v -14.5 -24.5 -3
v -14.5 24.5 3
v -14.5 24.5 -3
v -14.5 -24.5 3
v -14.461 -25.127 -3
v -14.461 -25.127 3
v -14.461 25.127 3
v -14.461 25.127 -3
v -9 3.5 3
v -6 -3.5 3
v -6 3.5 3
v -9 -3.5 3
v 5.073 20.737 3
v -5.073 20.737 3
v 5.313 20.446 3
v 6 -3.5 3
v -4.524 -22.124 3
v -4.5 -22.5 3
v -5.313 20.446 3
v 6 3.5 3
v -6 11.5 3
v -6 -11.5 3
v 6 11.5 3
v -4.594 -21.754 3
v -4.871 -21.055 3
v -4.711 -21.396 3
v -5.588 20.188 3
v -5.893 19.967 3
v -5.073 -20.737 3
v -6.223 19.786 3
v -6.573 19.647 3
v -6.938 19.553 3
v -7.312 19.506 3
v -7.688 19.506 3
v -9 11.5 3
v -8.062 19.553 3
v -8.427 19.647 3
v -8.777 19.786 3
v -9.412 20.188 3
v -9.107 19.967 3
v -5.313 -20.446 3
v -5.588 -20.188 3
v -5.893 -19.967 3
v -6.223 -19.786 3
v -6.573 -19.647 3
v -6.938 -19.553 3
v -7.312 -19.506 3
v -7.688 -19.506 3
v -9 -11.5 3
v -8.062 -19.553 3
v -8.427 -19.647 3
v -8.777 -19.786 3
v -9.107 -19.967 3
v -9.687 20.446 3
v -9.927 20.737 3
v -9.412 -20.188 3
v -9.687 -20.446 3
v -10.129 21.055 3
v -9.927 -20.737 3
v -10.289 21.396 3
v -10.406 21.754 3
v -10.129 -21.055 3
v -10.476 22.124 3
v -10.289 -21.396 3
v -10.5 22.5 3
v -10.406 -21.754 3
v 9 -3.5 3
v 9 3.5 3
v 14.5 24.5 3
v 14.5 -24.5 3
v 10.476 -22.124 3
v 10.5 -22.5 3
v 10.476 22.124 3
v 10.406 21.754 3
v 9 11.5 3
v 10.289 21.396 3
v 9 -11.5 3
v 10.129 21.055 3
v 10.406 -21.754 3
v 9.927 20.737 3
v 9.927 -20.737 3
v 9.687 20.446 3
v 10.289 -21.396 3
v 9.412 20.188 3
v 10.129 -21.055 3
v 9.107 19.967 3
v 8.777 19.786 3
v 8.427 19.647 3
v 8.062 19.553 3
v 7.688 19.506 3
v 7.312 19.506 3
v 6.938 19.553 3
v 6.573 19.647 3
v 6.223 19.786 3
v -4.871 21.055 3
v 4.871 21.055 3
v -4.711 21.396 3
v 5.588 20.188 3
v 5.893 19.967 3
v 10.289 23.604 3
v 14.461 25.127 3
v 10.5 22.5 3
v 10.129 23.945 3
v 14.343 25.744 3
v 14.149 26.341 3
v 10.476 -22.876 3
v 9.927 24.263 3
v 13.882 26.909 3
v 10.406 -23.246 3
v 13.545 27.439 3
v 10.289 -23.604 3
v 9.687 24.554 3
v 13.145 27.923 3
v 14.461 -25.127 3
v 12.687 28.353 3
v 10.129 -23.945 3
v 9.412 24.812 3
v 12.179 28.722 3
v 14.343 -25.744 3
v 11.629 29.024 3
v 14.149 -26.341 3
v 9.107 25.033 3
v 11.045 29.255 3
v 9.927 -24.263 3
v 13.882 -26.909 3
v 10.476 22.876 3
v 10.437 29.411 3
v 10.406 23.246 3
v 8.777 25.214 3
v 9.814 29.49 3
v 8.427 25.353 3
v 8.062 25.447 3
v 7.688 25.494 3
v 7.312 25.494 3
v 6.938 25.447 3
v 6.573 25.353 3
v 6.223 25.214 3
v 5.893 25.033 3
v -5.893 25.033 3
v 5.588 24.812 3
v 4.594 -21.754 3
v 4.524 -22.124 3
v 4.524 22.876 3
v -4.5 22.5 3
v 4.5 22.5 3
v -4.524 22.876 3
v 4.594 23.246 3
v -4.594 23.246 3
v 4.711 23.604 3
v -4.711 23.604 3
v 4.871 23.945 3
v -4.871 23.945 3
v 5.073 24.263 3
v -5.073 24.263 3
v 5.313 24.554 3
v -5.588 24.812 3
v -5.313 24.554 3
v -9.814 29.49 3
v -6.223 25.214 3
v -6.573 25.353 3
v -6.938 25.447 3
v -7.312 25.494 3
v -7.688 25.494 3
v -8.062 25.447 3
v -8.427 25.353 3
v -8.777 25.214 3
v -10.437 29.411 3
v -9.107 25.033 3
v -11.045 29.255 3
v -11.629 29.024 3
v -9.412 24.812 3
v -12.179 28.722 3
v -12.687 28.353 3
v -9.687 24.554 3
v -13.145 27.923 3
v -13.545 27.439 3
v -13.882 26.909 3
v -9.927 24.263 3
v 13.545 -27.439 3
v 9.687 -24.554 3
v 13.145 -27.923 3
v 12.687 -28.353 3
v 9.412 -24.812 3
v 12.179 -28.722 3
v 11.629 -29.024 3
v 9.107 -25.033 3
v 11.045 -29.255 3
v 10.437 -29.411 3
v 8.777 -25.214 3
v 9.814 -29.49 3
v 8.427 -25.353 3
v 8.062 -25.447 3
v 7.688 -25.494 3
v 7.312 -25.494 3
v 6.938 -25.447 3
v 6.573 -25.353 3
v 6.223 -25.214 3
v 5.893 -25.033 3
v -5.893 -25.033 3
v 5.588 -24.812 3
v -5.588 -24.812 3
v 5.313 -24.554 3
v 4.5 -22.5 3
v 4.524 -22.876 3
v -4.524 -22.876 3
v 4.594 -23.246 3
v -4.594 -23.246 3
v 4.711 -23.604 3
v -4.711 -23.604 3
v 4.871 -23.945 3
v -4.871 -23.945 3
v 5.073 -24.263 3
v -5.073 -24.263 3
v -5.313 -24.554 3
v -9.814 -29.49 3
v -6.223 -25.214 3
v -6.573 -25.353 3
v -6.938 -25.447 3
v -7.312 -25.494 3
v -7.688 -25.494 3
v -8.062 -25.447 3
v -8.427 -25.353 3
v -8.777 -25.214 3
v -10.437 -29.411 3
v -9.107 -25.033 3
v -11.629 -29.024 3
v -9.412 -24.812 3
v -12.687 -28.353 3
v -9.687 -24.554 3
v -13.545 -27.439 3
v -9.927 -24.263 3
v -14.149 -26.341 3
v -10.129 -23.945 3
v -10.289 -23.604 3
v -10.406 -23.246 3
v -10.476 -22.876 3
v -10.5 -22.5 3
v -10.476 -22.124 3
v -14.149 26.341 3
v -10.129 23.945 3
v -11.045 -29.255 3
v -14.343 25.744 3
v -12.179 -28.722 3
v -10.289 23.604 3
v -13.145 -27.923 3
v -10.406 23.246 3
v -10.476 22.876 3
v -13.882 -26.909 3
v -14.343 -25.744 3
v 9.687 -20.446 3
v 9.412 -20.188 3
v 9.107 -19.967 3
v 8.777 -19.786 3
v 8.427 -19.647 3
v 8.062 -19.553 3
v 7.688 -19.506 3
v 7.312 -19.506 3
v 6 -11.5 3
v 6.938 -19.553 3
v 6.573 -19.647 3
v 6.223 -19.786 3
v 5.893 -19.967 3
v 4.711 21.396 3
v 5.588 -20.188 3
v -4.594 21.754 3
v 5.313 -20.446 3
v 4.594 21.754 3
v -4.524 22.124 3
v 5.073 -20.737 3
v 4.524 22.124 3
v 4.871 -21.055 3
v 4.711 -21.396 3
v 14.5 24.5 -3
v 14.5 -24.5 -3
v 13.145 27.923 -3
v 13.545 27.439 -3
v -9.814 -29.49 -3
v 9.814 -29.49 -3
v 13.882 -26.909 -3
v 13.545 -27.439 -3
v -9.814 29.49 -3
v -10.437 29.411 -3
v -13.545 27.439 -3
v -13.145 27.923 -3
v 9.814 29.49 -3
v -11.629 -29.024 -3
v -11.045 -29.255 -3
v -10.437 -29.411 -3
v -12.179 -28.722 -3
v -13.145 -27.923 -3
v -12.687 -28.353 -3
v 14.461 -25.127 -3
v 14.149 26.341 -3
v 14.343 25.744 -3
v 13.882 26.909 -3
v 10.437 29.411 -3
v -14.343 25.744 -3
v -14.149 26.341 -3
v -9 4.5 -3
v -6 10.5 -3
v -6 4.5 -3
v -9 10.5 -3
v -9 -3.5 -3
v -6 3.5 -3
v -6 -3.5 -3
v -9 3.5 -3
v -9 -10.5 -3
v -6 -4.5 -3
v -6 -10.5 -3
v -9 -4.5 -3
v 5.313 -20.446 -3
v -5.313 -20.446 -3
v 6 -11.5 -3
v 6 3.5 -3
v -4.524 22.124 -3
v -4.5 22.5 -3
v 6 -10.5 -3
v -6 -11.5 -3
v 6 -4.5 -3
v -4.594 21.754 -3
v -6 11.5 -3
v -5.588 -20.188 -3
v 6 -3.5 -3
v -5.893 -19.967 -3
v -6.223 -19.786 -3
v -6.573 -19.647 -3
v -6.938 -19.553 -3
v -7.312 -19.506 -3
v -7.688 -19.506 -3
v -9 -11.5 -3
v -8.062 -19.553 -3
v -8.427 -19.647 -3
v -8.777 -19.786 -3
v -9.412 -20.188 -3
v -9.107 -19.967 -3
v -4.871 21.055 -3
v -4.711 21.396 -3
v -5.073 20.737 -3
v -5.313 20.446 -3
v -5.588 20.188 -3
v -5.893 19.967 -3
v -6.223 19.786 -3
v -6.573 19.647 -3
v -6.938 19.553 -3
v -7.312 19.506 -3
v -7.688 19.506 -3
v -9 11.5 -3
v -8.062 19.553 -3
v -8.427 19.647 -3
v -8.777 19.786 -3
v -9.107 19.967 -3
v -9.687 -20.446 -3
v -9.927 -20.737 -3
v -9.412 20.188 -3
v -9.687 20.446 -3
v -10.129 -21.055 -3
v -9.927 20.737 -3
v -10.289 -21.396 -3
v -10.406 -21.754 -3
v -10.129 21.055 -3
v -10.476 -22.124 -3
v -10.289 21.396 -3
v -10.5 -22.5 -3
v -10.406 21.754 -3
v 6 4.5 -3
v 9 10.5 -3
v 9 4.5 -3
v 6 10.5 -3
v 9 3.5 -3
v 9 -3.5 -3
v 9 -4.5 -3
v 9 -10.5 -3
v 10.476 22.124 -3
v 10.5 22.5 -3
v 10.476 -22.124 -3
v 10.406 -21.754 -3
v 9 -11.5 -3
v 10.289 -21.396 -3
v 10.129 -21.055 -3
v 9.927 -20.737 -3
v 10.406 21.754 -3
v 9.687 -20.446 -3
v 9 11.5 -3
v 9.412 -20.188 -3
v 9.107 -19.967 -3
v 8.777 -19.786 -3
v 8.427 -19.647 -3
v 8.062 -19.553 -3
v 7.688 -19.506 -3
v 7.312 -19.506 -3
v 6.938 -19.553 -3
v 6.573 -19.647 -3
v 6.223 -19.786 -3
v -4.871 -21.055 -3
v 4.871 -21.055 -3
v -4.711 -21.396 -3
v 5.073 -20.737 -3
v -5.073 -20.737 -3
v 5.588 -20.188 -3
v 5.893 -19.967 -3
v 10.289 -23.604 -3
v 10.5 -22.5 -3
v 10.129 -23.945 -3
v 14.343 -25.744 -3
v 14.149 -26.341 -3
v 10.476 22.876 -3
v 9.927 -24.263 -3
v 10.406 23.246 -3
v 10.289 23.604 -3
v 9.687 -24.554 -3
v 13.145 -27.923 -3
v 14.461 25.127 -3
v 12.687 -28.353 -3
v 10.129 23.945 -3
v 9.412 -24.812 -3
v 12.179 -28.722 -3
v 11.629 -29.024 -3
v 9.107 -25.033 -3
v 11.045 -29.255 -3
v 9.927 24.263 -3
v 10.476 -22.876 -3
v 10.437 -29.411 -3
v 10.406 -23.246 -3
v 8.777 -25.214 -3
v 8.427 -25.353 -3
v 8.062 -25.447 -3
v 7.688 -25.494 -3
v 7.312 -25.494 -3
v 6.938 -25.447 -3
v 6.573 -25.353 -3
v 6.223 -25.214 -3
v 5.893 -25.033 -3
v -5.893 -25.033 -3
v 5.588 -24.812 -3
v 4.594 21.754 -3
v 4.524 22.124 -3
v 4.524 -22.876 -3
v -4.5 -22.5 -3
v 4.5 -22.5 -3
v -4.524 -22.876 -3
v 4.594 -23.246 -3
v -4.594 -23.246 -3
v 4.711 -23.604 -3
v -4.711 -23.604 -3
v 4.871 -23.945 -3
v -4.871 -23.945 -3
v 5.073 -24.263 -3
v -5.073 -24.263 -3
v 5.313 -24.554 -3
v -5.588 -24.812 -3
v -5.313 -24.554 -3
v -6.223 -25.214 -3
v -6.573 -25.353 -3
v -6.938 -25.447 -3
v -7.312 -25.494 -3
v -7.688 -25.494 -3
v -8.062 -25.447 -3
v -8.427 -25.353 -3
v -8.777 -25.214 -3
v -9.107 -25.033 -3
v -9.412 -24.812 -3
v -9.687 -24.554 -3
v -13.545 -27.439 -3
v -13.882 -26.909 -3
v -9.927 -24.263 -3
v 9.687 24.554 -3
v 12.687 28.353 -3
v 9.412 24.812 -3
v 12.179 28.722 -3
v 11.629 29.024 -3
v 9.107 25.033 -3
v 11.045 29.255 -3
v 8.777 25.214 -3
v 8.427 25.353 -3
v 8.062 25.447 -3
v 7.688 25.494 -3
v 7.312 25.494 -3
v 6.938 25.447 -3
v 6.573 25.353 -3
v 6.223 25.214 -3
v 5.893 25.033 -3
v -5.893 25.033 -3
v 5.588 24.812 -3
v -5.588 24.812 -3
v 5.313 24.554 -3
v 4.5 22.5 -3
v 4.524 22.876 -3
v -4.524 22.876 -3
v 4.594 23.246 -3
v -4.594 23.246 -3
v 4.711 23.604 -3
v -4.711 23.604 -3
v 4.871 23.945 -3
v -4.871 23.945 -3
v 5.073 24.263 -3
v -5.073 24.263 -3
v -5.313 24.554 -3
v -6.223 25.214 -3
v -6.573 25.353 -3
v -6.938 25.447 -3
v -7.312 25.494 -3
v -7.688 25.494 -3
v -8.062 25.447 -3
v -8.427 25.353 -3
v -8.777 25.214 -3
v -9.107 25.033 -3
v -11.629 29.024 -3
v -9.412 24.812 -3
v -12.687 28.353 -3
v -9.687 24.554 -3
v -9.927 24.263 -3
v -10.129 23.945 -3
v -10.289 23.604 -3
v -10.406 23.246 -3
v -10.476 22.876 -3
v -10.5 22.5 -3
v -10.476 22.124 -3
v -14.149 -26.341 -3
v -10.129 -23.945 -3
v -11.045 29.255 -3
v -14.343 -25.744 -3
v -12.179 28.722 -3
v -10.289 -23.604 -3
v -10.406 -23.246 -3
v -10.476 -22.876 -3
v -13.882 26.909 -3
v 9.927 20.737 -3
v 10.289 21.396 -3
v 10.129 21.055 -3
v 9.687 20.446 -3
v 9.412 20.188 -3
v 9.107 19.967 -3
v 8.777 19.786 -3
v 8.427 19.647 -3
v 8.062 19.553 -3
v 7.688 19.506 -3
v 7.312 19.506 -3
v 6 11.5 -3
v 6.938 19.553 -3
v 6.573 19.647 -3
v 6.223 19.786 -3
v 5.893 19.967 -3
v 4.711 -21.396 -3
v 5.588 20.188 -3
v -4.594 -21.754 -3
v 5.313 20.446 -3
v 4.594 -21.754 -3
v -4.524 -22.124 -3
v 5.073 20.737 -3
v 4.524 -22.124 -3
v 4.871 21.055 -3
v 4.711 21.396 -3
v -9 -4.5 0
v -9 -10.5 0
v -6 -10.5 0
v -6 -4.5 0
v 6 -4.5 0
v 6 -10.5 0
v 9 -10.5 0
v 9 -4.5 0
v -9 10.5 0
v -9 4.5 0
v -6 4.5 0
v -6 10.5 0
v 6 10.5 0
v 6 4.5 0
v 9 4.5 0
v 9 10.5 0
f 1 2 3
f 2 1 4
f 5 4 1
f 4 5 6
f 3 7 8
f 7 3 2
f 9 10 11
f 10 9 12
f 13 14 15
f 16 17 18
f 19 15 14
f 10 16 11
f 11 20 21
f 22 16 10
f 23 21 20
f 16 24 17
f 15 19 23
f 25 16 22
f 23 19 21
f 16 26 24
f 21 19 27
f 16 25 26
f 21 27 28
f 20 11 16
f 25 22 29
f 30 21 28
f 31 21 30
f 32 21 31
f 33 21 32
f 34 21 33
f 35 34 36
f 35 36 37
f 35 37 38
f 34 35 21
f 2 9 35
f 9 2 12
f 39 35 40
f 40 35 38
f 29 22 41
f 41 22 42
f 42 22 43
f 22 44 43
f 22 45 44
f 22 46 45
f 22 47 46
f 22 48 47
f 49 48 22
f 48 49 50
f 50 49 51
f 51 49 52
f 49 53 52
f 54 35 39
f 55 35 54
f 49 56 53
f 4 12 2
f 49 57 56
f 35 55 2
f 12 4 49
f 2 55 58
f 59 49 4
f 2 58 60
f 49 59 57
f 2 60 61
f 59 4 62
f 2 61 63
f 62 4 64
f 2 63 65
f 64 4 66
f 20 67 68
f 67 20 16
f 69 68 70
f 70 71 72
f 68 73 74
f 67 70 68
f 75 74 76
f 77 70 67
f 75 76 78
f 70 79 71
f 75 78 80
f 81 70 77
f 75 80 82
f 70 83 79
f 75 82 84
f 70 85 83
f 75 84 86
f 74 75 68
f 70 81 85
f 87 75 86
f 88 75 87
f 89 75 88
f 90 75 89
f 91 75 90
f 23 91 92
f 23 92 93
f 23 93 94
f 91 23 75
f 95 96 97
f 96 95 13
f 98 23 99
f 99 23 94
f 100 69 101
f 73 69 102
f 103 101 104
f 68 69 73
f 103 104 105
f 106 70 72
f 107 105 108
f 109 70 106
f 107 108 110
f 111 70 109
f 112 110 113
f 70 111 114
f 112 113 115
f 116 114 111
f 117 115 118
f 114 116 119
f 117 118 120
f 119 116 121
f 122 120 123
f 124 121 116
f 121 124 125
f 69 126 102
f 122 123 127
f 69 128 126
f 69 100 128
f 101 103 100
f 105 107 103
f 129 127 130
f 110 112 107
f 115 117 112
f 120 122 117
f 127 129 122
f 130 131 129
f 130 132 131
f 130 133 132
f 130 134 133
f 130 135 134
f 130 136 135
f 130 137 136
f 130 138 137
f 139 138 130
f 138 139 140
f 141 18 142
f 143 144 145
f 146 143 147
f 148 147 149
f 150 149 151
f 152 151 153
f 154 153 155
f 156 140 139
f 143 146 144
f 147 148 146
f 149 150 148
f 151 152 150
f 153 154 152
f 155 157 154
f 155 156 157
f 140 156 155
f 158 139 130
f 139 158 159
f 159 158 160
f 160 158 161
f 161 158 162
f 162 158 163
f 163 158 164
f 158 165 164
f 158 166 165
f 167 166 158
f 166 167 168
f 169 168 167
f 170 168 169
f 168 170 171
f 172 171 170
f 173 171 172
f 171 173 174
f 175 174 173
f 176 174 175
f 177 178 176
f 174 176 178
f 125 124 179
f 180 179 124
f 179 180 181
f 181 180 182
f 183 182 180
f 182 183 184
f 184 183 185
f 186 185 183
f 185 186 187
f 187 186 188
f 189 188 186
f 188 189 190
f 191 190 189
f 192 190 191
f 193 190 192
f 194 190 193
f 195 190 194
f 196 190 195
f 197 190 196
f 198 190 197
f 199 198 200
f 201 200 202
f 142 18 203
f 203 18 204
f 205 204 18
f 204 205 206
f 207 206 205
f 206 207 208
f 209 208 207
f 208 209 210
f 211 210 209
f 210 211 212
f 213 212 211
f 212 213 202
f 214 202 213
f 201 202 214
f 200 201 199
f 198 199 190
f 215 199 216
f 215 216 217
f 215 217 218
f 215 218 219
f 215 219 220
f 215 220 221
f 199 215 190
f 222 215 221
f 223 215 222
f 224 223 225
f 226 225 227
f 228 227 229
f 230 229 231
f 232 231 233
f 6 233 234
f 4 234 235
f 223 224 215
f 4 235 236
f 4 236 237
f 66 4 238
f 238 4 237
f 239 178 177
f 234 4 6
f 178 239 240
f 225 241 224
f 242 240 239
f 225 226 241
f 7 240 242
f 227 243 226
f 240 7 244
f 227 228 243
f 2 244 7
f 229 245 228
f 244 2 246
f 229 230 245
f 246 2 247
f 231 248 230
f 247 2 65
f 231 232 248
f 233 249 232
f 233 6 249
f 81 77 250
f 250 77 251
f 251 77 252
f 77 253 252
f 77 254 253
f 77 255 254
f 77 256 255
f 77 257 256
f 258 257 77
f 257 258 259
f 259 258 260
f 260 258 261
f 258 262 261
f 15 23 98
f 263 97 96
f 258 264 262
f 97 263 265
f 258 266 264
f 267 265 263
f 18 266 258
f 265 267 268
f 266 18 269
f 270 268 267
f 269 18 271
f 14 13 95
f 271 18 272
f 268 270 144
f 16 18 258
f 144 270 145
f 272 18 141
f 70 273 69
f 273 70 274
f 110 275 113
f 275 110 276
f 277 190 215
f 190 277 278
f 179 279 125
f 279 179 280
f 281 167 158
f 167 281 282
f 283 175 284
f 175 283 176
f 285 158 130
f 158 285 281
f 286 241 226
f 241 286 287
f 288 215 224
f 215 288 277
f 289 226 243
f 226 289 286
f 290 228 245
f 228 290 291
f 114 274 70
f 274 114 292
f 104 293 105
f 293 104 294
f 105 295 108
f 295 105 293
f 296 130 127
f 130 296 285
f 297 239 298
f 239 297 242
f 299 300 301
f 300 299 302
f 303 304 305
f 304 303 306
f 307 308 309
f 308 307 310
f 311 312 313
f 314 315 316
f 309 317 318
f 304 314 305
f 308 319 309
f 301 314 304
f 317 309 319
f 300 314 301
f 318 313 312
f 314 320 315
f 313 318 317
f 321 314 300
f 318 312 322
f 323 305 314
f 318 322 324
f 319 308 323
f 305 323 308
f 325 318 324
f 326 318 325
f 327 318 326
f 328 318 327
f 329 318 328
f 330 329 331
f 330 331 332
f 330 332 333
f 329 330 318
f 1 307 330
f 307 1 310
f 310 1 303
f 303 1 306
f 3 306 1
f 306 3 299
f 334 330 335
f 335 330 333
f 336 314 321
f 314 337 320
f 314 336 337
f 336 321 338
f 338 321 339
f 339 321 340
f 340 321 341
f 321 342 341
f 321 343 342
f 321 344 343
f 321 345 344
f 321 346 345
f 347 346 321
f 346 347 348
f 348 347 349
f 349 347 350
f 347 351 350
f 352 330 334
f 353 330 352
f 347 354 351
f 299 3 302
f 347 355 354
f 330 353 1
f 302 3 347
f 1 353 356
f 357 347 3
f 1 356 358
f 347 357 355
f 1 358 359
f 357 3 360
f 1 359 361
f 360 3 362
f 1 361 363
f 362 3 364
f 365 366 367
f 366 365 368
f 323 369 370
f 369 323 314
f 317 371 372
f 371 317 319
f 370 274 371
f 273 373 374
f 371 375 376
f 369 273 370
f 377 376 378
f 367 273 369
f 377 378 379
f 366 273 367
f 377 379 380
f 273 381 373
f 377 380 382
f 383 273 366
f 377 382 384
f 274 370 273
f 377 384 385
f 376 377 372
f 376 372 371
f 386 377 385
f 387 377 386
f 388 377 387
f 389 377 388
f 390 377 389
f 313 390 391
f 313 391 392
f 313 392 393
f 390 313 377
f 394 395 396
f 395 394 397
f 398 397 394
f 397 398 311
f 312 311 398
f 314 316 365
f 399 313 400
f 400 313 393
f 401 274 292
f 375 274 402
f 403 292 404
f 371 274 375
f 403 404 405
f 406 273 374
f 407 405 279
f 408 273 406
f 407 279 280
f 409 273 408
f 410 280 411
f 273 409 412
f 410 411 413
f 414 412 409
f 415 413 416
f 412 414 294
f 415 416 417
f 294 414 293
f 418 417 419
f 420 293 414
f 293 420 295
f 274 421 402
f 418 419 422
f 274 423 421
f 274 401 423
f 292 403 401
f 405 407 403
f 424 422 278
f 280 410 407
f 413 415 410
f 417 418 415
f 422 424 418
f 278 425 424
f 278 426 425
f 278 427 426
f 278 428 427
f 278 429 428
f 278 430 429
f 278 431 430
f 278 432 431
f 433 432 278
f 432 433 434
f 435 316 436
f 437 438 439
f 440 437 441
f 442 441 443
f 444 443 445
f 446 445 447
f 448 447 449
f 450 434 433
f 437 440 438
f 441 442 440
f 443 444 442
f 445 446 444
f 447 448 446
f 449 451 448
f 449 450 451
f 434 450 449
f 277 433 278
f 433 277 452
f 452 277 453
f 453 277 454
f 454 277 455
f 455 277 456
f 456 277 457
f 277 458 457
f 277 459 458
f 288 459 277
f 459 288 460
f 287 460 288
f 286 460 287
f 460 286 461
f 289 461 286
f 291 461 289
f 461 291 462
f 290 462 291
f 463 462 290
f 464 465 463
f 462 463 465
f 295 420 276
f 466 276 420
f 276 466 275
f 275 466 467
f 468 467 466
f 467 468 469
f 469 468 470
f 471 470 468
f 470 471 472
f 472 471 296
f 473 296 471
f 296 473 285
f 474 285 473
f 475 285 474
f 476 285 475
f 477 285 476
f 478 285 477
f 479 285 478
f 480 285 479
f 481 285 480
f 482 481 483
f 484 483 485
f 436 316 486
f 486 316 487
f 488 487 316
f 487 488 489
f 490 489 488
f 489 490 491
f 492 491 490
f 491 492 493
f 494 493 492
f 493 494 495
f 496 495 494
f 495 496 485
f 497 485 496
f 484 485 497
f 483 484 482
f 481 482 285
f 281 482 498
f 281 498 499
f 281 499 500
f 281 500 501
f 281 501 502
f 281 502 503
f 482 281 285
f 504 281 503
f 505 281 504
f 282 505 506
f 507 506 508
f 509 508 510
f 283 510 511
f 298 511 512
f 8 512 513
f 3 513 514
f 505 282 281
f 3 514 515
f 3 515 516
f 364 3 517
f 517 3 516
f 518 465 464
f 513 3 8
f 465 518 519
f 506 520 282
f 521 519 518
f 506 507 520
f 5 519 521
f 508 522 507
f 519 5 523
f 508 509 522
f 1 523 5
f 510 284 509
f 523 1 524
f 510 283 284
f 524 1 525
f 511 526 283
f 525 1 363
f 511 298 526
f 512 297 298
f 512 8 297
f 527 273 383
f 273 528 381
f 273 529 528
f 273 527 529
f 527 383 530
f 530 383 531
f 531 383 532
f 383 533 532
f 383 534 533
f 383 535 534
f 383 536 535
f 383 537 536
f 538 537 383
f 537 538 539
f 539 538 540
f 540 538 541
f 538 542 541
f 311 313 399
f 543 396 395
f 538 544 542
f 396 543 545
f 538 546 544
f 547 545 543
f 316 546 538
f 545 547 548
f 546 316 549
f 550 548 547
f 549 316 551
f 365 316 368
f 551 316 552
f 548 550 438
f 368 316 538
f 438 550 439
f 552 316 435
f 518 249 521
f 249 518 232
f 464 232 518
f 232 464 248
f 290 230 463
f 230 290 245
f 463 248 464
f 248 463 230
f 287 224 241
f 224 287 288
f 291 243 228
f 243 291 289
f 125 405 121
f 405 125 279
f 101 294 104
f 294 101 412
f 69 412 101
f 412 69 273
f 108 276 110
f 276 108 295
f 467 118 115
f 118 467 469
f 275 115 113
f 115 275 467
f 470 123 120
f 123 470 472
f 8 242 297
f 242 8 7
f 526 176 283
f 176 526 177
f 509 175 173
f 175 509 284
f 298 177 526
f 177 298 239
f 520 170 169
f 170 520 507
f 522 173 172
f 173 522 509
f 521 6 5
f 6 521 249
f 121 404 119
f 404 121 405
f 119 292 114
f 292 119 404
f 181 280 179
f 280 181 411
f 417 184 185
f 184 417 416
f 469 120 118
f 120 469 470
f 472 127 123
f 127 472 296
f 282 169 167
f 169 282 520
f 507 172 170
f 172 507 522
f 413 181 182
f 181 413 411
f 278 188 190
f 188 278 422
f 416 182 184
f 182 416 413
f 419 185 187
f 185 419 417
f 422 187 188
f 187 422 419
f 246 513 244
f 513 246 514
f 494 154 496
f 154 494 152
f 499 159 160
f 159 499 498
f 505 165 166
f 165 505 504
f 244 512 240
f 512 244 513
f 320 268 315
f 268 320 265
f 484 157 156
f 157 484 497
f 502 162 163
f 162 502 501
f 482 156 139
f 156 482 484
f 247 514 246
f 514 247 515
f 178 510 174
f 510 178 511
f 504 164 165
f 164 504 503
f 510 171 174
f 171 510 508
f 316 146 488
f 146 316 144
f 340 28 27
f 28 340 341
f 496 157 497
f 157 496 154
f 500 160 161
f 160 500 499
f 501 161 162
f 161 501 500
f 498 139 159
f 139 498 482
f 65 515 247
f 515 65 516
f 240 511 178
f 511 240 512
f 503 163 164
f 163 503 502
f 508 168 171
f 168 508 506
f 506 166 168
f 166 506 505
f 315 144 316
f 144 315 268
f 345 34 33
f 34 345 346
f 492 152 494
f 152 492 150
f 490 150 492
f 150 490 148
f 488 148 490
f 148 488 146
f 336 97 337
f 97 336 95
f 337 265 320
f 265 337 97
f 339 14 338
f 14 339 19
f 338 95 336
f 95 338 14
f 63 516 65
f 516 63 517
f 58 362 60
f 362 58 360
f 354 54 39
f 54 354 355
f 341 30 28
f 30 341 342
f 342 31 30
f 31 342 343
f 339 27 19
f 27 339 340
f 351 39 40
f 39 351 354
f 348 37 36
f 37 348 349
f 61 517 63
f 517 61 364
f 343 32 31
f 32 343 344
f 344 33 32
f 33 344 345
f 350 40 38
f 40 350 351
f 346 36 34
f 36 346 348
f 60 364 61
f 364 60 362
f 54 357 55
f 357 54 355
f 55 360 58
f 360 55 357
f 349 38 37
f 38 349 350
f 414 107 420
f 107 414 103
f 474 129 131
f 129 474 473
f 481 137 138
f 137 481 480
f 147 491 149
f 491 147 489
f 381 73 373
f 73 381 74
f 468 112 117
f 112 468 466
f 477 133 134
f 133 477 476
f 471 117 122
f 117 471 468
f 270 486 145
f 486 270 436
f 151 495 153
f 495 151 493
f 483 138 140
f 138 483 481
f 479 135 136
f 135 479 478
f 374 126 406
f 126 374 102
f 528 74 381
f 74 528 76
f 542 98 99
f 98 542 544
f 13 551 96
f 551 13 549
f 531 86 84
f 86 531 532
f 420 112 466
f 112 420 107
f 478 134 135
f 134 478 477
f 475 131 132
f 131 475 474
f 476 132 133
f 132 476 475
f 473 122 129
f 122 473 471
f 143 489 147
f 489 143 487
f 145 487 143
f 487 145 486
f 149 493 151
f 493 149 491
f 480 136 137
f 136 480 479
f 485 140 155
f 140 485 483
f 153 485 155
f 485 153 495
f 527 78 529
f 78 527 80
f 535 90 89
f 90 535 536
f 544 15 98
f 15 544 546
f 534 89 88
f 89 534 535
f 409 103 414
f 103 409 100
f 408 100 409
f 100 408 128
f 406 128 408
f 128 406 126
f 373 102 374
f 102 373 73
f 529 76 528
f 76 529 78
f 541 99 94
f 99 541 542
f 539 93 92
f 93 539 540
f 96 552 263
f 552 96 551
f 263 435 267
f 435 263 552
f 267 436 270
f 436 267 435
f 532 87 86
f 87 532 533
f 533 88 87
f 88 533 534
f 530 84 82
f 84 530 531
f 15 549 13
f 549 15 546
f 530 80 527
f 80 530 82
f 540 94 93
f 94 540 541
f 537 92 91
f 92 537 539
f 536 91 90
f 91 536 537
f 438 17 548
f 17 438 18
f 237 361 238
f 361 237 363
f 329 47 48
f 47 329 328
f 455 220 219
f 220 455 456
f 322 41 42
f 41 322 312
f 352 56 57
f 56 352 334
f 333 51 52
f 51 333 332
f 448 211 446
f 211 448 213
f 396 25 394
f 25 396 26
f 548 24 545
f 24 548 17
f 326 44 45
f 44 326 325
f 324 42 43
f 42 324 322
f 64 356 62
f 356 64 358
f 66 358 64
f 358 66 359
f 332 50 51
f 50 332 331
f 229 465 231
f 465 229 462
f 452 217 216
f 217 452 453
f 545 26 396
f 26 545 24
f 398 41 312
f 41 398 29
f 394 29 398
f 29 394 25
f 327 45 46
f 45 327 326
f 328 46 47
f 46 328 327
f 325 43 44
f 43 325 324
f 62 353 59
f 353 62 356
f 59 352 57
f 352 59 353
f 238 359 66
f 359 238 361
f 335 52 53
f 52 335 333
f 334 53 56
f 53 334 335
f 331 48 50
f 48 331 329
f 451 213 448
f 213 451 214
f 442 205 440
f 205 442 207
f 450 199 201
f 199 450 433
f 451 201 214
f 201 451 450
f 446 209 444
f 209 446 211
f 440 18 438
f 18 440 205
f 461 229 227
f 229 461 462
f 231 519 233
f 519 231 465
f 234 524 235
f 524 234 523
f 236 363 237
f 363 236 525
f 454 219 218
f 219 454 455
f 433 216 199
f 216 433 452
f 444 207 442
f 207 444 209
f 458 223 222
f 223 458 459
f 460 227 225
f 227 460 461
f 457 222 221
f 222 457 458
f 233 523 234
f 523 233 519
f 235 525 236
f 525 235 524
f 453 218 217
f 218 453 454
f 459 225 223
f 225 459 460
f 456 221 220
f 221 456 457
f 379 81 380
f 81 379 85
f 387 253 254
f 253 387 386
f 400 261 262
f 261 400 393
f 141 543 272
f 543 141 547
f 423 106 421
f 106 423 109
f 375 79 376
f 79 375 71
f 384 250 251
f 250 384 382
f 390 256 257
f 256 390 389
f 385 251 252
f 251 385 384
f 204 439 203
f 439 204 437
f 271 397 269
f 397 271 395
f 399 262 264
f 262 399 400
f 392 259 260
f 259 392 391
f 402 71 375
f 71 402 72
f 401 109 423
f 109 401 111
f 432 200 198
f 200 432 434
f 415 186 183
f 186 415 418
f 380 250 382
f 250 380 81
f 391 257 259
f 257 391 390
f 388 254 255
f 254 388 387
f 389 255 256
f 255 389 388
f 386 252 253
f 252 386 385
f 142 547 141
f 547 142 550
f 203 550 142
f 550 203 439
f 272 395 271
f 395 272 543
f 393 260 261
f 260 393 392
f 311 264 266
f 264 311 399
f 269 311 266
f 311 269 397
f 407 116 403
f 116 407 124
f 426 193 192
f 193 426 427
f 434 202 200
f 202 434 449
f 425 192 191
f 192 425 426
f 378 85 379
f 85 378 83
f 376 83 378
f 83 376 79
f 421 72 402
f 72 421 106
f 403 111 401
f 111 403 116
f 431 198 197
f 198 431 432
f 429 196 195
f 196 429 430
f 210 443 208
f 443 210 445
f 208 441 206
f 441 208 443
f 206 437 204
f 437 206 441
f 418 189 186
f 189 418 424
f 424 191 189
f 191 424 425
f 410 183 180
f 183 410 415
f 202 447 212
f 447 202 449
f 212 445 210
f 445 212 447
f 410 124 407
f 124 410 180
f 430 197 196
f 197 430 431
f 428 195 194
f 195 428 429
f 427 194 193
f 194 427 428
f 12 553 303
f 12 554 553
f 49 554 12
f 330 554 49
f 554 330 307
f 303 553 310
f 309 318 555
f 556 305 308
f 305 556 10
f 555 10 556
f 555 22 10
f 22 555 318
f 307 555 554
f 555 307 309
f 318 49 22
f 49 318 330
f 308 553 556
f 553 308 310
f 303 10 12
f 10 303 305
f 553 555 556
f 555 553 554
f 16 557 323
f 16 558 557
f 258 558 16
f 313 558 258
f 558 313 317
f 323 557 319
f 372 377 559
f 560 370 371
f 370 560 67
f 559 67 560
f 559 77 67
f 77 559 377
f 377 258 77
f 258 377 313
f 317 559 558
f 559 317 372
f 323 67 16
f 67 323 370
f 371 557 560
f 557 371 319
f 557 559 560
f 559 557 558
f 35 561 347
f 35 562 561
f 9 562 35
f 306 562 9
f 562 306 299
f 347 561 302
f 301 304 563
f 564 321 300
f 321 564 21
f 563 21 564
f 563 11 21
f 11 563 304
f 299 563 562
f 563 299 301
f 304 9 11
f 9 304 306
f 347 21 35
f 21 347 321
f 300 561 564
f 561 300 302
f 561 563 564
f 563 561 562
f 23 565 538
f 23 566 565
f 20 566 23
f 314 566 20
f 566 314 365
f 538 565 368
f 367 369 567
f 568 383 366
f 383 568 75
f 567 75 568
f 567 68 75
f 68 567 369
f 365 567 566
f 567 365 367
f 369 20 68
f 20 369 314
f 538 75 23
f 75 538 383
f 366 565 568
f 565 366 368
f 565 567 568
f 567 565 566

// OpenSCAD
$fn = 50;


difference() {
	union() {
		translate(v = [0, 0, -3.0000000000]) {
			hull() {
				translate(v = [-9.5000000000, 24.5000000000, 0]) {
					cylinder(h = 6, r = 5);
				}
				translate(v = [9.5000000000, 24.5000000000, 0]) {
					cylinder(h = 6, r = 5);
				}
				translate(v = [-9.5000000000, -24.5000000000, 0]) {
					cylinder(h = 6, r = 5);
				}
				translate(v = [9.5000000000, -24.5000000000, 0]) {
					cylinder(h = 6, r = 5);
				}
			}
		}
		translate(v = [0, 0, -3.0000000000]) {
			hull() {
				translate(v = [-9.5000000000, 24.5000000000, 0]) {
					cylinder(h = 6, r = 5);
				}
				translate(v = [9.5000000000, 24.5000000000, 0]) {
					cylinder(h = 6, r = 5);
				}
				translate(v = [-9.5000000000, -24.5000000000, 0]) {
					cylinder(h = 6, r = 5);
				}
				translate(v = [9.5000000000, -24.5000000000, 0]) {
					cylinder(h = 6, r = 5);
				}
			}
		}
	}
	union() {
		translate(v = [-7.5000000000, 22.5000000000, -50.0000000000]) {
			cylinder(h = 100, r = 3.0000000000);
		}
		translate(v = [7.5000000000, 22.5000000000, -50.0000000000]) {
			cylinder(h = 100, r = 3.0000000000);
		}
		translate(v = [-7.5000000000, -22.5000000000, -50.0000000000]) {
			cylinder(h = 100, r = 3.0000000000);
		}
		translate(v = [7.5000000000, -22.5000000000, -50.0000000000]) {
			cylinder(h = 100, r = 3.0000000000);
		}
		translate(v = [-9.0000000000, -11.5000000000, -50]) {
			cube(size = [3, 1, 100]);
		}
		translate(v = [-9.0000000000, -4.5000000000, -50]) {
			cube(size = [3, 1, 100]);
		}
		translate(v = [-9.0000000000, -11.5000000000, 0]) {
			cube(size = [3, 8, 3]);
		}
		translate(v = [6.0000000000, -11.5000000000, -50]) {
			cube(size = [3, 1, 100]);
		}
		translate(v = [6.0000000000, -4.5000000000, -50]) {
			cube(size = [3, 1, 100]);
		}
		translate(v = [6.0000000000, -11.5000000000, 0]) {
			cube(size = [3, 8, 3]);
		}
		translate(v = [-9.0000000000, 3.5000000000, -50]) {
			cube(size = [3, 1, 100]);
		}
		translate(v = [-9.0000000000, 10.5000000000, -50]) {
			cube(size = [3, 1, 100]);
		}
		translate(v = [-9.0000000000, 3.5000000000, 0]) {
			cube(size = [3, 8, 3]);
		}
		translate(v = [6.0000000000, 3.5000000000, -50]) {
			cube(size = [3, 1, 100]);
		}
		translate(v = [6.0000000000, 10.5000000000, -50]) {
			cube(size = [3, 1, 100]);
		}
		translate(v = [6.0000000000, 3.5000000000, 0]) {
			cube(size = [3, 8, 3]);
		}
	}
}
